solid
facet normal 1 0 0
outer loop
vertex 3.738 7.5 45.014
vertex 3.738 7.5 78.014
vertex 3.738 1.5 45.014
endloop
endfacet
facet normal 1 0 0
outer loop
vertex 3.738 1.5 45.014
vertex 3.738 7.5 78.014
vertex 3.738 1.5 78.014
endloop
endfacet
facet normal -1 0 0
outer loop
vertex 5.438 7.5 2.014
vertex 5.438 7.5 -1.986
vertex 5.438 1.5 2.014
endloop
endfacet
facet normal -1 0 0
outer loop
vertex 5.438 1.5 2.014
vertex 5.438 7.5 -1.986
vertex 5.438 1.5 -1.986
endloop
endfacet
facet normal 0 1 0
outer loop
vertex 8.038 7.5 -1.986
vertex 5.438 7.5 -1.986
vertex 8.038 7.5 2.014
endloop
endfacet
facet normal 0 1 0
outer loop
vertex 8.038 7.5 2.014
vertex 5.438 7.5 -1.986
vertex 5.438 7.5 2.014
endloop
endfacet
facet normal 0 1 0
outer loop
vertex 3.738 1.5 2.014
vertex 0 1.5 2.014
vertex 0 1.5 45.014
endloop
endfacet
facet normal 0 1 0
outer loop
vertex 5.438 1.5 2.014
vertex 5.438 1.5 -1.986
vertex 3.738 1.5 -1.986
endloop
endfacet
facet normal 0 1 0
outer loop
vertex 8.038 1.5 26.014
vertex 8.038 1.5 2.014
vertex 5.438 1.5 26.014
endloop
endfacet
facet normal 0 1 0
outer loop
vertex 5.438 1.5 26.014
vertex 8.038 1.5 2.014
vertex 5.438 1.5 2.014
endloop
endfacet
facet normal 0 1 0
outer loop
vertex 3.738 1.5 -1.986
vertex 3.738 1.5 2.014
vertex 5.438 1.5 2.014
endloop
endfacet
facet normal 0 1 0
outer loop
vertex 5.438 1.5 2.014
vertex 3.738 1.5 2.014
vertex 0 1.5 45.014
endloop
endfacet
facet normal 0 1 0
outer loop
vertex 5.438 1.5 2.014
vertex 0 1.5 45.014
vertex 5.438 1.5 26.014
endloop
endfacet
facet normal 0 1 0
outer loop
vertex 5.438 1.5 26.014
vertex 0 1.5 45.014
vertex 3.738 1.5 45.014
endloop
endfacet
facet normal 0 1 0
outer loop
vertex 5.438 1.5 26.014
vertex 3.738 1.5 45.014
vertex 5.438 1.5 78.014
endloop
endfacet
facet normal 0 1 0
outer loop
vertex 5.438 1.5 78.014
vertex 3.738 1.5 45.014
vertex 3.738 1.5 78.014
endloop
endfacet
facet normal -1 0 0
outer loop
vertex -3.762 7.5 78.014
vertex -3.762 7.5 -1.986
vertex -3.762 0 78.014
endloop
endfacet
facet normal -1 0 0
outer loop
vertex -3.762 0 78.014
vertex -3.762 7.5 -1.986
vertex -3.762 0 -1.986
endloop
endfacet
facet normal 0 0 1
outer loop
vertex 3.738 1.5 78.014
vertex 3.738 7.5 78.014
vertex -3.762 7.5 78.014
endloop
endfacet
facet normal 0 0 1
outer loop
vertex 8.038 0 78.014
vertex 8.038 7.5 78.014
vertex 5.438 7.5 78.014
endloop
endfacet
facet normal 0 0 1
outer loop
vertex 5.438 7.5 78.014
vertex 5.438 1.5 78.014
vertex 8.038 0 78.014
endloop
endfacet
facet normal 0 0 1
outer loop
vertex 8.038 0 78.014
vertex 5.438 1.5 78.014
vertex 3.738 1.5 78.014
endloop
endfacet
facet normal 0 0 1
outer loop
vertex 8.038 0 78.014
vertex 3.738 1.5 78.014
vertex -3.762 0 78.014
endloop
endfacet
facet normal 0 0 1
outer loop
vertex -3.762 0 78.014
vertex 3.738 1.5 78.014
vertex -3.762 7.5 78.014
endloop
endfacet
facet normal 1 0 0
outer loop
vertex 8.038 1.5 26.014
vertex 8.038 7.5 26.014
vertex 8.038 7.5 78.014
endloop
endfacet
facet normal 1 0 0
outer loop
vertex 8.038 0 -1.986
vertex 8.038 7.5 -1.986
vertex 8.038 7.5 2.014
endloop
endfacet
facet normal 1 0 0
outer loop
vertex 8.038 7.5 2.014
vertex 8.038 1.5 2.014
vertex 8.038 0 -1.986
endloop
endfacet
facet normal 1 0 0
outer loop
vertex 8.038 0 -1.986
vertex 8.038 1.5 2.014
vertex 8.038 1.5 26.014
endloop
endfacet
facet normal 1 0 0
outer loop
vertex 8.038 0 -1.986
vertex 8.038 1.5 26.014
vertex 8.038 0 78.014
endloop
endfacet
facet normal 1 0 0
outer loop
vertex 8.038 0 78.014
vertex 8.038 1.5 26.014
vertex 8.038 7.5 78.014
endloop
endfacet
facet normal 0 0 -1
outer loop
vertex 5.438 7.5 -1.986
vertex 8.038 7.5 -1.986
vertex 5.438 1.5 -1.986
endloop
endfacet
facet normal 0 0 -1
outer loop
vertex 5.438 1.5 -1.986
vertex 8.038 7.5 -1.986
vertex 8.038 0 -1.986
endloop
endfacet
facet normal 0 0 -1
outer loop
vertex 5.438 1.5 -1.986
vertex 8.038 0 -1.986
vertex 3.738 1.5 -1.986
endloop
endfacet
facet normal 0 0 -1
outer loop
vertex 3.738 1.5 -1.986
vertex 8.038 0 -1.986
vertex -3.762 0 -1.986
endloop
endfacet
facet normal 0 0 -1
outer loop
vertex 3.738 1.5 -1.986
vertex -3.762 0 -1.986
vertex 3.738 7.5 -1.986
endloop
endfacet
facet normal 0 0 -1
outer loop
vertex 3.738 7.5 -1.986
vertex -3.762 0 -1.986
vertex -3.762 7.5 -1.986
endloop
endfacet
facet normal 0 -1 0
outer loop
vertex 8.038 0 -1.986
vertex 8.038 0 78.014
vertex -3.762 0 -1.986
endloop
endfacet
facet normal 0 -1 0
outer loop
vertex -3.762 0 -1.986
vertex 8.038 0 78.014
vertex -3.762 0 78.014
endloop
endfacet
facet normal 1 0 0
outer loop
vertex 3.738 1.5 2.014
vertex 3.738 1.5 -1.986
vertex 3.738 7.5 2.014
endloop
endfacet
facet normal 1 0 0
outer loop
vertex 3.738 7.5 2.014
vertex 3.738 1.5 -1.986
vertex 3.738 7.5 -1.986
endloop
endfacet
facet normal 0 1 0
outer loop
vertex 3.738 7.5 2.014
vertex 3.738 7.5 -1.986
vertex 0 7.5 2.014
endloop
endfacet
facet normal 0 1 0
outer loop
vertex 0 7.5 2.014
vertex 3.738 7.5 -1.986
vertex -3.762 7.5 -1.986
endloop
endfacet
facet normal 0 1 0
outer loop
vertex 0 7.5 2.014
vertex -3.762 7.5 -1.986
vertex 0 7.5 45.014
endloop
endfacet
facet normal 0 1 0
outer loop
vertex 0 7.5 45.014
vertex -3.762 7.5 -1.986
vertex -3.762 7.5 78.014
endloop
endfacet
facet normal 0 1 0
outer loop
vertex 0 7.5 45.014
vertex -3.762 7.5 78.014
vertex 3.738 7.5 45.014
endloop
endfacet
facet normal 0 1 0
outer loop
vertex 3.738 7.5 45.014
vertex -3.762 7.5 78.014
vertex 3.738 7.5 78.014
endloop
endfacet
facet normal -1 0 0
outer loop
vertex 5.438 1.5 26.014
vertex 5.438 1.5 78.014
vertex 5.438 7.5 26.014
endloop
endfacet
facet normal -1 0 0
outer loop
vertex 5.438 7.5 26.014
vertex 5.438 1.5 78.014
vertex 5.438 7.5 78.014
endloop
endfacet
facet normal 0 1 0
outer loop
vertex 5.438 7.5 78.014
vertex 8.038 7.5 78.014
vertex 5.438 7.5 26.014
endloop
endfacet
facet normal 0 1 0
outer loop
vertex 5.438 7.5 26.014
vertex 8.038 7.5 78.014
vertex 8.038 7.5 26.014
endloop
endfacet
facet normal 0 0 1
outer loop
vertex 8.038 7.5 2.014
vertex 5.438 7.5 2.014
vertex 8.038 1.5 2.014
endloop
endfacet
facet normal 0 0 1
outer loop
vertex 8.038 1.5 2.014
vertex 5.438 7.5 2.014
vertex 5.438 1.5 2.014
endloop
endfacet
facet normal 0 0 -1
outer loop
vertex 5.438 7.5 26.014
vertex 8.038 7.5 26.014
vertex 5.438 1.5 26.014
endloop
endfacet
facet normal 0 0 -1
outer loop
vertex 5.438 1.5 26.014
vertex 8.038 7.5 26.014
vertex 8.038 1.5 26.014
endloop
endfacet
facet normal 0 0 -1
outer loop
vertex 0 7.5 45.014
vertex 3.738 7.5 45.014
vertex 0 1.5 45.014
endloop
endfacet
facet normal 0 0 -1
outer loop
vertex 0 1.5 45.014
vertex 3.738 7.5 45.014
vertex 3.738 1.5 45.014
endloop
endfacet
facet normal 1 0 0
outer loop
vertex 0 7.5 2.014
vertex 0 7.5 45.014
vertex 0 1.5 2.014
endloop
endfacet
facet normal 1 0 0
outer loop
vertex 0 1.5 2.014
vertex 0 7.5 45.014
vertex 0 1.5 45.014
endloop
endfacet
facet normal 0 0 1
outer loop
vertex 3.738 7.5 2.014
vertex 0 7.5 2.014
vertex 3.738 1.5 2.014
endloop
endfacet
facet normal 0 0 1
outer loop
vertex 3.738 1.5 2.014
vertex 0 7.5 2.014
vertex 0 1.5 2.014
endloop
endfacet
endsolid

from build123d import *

# Parameters (mm, degrees)
SKETCH1_W           = 11.8
SKETCH1_H           = 80
BOSS_EXTRUDE1_DEPTH = 1.5
SKETCH2_W           = 7.5
SKETCH2_H           = 80
SKETCH2_W_2         = 2.6
BOSS_EXTRUDE2_DEPTH = 6
SKETCH3_W           = 3.738034865
SKETCH3_H           = 43
SKETCH3_W_2         = 2.6
SKETCH3_H_2         = 24
CUT_EXTRUDE1_DEPTH  = 6


with BuildPart() as part:
    # Sketch1 → Boss-Extrude1 (new body)
    with BuildSketch(Plane(origin=(0, 0, 0), x_dir=(1, 0, 0), z_dir=(0, 1, 0))):
        with Locations((2.138034865, -38.013787639)):
            Rectangle(SKETCH1_W, SKETCH1_H)
    extrude(amount=BOSS_EXTRUDE1_DEPTH)

    # Sketch2 → Boss-Extrude2 (add)
    with BuildSketch(Plane(origin=(0, 1.5, 0), x_dir=(1, 0, 0), z_dir=(0, 1, 0))):
        with Locations((-0.011965135, -38.013787639)):
            Rectangle(SKETCH2_W, SKETCH2_H)
        with Locations((6.738034865, -38.013787639)):
            Rectangle(SKETCH2_W_2, SKETCH2_H)
    extrude(amount=BOSS_EXTRUDE2_DEPTH)

    # Sketch3 → Cut-Extrude1 (cut)
    with BuildSketch(Plane(origin=(0, 7.5, 0), x_dir=(1, 0, 0), z_dir=(0, 1, 0))):
        with Locations((1.869017433, -23.513787639)):
            Rectangle(SKETCH3_W, SKETCH3_H)
        with Locations((6.738034865, -14.013787639)):
            Rectangle(SKETCH3_W_2, SKETCH3_H_2)
    extrude(amount=-CUT_EXTRUDE1_DEPTH, mode=Mode.SUBTRACT)


solid = part.part
